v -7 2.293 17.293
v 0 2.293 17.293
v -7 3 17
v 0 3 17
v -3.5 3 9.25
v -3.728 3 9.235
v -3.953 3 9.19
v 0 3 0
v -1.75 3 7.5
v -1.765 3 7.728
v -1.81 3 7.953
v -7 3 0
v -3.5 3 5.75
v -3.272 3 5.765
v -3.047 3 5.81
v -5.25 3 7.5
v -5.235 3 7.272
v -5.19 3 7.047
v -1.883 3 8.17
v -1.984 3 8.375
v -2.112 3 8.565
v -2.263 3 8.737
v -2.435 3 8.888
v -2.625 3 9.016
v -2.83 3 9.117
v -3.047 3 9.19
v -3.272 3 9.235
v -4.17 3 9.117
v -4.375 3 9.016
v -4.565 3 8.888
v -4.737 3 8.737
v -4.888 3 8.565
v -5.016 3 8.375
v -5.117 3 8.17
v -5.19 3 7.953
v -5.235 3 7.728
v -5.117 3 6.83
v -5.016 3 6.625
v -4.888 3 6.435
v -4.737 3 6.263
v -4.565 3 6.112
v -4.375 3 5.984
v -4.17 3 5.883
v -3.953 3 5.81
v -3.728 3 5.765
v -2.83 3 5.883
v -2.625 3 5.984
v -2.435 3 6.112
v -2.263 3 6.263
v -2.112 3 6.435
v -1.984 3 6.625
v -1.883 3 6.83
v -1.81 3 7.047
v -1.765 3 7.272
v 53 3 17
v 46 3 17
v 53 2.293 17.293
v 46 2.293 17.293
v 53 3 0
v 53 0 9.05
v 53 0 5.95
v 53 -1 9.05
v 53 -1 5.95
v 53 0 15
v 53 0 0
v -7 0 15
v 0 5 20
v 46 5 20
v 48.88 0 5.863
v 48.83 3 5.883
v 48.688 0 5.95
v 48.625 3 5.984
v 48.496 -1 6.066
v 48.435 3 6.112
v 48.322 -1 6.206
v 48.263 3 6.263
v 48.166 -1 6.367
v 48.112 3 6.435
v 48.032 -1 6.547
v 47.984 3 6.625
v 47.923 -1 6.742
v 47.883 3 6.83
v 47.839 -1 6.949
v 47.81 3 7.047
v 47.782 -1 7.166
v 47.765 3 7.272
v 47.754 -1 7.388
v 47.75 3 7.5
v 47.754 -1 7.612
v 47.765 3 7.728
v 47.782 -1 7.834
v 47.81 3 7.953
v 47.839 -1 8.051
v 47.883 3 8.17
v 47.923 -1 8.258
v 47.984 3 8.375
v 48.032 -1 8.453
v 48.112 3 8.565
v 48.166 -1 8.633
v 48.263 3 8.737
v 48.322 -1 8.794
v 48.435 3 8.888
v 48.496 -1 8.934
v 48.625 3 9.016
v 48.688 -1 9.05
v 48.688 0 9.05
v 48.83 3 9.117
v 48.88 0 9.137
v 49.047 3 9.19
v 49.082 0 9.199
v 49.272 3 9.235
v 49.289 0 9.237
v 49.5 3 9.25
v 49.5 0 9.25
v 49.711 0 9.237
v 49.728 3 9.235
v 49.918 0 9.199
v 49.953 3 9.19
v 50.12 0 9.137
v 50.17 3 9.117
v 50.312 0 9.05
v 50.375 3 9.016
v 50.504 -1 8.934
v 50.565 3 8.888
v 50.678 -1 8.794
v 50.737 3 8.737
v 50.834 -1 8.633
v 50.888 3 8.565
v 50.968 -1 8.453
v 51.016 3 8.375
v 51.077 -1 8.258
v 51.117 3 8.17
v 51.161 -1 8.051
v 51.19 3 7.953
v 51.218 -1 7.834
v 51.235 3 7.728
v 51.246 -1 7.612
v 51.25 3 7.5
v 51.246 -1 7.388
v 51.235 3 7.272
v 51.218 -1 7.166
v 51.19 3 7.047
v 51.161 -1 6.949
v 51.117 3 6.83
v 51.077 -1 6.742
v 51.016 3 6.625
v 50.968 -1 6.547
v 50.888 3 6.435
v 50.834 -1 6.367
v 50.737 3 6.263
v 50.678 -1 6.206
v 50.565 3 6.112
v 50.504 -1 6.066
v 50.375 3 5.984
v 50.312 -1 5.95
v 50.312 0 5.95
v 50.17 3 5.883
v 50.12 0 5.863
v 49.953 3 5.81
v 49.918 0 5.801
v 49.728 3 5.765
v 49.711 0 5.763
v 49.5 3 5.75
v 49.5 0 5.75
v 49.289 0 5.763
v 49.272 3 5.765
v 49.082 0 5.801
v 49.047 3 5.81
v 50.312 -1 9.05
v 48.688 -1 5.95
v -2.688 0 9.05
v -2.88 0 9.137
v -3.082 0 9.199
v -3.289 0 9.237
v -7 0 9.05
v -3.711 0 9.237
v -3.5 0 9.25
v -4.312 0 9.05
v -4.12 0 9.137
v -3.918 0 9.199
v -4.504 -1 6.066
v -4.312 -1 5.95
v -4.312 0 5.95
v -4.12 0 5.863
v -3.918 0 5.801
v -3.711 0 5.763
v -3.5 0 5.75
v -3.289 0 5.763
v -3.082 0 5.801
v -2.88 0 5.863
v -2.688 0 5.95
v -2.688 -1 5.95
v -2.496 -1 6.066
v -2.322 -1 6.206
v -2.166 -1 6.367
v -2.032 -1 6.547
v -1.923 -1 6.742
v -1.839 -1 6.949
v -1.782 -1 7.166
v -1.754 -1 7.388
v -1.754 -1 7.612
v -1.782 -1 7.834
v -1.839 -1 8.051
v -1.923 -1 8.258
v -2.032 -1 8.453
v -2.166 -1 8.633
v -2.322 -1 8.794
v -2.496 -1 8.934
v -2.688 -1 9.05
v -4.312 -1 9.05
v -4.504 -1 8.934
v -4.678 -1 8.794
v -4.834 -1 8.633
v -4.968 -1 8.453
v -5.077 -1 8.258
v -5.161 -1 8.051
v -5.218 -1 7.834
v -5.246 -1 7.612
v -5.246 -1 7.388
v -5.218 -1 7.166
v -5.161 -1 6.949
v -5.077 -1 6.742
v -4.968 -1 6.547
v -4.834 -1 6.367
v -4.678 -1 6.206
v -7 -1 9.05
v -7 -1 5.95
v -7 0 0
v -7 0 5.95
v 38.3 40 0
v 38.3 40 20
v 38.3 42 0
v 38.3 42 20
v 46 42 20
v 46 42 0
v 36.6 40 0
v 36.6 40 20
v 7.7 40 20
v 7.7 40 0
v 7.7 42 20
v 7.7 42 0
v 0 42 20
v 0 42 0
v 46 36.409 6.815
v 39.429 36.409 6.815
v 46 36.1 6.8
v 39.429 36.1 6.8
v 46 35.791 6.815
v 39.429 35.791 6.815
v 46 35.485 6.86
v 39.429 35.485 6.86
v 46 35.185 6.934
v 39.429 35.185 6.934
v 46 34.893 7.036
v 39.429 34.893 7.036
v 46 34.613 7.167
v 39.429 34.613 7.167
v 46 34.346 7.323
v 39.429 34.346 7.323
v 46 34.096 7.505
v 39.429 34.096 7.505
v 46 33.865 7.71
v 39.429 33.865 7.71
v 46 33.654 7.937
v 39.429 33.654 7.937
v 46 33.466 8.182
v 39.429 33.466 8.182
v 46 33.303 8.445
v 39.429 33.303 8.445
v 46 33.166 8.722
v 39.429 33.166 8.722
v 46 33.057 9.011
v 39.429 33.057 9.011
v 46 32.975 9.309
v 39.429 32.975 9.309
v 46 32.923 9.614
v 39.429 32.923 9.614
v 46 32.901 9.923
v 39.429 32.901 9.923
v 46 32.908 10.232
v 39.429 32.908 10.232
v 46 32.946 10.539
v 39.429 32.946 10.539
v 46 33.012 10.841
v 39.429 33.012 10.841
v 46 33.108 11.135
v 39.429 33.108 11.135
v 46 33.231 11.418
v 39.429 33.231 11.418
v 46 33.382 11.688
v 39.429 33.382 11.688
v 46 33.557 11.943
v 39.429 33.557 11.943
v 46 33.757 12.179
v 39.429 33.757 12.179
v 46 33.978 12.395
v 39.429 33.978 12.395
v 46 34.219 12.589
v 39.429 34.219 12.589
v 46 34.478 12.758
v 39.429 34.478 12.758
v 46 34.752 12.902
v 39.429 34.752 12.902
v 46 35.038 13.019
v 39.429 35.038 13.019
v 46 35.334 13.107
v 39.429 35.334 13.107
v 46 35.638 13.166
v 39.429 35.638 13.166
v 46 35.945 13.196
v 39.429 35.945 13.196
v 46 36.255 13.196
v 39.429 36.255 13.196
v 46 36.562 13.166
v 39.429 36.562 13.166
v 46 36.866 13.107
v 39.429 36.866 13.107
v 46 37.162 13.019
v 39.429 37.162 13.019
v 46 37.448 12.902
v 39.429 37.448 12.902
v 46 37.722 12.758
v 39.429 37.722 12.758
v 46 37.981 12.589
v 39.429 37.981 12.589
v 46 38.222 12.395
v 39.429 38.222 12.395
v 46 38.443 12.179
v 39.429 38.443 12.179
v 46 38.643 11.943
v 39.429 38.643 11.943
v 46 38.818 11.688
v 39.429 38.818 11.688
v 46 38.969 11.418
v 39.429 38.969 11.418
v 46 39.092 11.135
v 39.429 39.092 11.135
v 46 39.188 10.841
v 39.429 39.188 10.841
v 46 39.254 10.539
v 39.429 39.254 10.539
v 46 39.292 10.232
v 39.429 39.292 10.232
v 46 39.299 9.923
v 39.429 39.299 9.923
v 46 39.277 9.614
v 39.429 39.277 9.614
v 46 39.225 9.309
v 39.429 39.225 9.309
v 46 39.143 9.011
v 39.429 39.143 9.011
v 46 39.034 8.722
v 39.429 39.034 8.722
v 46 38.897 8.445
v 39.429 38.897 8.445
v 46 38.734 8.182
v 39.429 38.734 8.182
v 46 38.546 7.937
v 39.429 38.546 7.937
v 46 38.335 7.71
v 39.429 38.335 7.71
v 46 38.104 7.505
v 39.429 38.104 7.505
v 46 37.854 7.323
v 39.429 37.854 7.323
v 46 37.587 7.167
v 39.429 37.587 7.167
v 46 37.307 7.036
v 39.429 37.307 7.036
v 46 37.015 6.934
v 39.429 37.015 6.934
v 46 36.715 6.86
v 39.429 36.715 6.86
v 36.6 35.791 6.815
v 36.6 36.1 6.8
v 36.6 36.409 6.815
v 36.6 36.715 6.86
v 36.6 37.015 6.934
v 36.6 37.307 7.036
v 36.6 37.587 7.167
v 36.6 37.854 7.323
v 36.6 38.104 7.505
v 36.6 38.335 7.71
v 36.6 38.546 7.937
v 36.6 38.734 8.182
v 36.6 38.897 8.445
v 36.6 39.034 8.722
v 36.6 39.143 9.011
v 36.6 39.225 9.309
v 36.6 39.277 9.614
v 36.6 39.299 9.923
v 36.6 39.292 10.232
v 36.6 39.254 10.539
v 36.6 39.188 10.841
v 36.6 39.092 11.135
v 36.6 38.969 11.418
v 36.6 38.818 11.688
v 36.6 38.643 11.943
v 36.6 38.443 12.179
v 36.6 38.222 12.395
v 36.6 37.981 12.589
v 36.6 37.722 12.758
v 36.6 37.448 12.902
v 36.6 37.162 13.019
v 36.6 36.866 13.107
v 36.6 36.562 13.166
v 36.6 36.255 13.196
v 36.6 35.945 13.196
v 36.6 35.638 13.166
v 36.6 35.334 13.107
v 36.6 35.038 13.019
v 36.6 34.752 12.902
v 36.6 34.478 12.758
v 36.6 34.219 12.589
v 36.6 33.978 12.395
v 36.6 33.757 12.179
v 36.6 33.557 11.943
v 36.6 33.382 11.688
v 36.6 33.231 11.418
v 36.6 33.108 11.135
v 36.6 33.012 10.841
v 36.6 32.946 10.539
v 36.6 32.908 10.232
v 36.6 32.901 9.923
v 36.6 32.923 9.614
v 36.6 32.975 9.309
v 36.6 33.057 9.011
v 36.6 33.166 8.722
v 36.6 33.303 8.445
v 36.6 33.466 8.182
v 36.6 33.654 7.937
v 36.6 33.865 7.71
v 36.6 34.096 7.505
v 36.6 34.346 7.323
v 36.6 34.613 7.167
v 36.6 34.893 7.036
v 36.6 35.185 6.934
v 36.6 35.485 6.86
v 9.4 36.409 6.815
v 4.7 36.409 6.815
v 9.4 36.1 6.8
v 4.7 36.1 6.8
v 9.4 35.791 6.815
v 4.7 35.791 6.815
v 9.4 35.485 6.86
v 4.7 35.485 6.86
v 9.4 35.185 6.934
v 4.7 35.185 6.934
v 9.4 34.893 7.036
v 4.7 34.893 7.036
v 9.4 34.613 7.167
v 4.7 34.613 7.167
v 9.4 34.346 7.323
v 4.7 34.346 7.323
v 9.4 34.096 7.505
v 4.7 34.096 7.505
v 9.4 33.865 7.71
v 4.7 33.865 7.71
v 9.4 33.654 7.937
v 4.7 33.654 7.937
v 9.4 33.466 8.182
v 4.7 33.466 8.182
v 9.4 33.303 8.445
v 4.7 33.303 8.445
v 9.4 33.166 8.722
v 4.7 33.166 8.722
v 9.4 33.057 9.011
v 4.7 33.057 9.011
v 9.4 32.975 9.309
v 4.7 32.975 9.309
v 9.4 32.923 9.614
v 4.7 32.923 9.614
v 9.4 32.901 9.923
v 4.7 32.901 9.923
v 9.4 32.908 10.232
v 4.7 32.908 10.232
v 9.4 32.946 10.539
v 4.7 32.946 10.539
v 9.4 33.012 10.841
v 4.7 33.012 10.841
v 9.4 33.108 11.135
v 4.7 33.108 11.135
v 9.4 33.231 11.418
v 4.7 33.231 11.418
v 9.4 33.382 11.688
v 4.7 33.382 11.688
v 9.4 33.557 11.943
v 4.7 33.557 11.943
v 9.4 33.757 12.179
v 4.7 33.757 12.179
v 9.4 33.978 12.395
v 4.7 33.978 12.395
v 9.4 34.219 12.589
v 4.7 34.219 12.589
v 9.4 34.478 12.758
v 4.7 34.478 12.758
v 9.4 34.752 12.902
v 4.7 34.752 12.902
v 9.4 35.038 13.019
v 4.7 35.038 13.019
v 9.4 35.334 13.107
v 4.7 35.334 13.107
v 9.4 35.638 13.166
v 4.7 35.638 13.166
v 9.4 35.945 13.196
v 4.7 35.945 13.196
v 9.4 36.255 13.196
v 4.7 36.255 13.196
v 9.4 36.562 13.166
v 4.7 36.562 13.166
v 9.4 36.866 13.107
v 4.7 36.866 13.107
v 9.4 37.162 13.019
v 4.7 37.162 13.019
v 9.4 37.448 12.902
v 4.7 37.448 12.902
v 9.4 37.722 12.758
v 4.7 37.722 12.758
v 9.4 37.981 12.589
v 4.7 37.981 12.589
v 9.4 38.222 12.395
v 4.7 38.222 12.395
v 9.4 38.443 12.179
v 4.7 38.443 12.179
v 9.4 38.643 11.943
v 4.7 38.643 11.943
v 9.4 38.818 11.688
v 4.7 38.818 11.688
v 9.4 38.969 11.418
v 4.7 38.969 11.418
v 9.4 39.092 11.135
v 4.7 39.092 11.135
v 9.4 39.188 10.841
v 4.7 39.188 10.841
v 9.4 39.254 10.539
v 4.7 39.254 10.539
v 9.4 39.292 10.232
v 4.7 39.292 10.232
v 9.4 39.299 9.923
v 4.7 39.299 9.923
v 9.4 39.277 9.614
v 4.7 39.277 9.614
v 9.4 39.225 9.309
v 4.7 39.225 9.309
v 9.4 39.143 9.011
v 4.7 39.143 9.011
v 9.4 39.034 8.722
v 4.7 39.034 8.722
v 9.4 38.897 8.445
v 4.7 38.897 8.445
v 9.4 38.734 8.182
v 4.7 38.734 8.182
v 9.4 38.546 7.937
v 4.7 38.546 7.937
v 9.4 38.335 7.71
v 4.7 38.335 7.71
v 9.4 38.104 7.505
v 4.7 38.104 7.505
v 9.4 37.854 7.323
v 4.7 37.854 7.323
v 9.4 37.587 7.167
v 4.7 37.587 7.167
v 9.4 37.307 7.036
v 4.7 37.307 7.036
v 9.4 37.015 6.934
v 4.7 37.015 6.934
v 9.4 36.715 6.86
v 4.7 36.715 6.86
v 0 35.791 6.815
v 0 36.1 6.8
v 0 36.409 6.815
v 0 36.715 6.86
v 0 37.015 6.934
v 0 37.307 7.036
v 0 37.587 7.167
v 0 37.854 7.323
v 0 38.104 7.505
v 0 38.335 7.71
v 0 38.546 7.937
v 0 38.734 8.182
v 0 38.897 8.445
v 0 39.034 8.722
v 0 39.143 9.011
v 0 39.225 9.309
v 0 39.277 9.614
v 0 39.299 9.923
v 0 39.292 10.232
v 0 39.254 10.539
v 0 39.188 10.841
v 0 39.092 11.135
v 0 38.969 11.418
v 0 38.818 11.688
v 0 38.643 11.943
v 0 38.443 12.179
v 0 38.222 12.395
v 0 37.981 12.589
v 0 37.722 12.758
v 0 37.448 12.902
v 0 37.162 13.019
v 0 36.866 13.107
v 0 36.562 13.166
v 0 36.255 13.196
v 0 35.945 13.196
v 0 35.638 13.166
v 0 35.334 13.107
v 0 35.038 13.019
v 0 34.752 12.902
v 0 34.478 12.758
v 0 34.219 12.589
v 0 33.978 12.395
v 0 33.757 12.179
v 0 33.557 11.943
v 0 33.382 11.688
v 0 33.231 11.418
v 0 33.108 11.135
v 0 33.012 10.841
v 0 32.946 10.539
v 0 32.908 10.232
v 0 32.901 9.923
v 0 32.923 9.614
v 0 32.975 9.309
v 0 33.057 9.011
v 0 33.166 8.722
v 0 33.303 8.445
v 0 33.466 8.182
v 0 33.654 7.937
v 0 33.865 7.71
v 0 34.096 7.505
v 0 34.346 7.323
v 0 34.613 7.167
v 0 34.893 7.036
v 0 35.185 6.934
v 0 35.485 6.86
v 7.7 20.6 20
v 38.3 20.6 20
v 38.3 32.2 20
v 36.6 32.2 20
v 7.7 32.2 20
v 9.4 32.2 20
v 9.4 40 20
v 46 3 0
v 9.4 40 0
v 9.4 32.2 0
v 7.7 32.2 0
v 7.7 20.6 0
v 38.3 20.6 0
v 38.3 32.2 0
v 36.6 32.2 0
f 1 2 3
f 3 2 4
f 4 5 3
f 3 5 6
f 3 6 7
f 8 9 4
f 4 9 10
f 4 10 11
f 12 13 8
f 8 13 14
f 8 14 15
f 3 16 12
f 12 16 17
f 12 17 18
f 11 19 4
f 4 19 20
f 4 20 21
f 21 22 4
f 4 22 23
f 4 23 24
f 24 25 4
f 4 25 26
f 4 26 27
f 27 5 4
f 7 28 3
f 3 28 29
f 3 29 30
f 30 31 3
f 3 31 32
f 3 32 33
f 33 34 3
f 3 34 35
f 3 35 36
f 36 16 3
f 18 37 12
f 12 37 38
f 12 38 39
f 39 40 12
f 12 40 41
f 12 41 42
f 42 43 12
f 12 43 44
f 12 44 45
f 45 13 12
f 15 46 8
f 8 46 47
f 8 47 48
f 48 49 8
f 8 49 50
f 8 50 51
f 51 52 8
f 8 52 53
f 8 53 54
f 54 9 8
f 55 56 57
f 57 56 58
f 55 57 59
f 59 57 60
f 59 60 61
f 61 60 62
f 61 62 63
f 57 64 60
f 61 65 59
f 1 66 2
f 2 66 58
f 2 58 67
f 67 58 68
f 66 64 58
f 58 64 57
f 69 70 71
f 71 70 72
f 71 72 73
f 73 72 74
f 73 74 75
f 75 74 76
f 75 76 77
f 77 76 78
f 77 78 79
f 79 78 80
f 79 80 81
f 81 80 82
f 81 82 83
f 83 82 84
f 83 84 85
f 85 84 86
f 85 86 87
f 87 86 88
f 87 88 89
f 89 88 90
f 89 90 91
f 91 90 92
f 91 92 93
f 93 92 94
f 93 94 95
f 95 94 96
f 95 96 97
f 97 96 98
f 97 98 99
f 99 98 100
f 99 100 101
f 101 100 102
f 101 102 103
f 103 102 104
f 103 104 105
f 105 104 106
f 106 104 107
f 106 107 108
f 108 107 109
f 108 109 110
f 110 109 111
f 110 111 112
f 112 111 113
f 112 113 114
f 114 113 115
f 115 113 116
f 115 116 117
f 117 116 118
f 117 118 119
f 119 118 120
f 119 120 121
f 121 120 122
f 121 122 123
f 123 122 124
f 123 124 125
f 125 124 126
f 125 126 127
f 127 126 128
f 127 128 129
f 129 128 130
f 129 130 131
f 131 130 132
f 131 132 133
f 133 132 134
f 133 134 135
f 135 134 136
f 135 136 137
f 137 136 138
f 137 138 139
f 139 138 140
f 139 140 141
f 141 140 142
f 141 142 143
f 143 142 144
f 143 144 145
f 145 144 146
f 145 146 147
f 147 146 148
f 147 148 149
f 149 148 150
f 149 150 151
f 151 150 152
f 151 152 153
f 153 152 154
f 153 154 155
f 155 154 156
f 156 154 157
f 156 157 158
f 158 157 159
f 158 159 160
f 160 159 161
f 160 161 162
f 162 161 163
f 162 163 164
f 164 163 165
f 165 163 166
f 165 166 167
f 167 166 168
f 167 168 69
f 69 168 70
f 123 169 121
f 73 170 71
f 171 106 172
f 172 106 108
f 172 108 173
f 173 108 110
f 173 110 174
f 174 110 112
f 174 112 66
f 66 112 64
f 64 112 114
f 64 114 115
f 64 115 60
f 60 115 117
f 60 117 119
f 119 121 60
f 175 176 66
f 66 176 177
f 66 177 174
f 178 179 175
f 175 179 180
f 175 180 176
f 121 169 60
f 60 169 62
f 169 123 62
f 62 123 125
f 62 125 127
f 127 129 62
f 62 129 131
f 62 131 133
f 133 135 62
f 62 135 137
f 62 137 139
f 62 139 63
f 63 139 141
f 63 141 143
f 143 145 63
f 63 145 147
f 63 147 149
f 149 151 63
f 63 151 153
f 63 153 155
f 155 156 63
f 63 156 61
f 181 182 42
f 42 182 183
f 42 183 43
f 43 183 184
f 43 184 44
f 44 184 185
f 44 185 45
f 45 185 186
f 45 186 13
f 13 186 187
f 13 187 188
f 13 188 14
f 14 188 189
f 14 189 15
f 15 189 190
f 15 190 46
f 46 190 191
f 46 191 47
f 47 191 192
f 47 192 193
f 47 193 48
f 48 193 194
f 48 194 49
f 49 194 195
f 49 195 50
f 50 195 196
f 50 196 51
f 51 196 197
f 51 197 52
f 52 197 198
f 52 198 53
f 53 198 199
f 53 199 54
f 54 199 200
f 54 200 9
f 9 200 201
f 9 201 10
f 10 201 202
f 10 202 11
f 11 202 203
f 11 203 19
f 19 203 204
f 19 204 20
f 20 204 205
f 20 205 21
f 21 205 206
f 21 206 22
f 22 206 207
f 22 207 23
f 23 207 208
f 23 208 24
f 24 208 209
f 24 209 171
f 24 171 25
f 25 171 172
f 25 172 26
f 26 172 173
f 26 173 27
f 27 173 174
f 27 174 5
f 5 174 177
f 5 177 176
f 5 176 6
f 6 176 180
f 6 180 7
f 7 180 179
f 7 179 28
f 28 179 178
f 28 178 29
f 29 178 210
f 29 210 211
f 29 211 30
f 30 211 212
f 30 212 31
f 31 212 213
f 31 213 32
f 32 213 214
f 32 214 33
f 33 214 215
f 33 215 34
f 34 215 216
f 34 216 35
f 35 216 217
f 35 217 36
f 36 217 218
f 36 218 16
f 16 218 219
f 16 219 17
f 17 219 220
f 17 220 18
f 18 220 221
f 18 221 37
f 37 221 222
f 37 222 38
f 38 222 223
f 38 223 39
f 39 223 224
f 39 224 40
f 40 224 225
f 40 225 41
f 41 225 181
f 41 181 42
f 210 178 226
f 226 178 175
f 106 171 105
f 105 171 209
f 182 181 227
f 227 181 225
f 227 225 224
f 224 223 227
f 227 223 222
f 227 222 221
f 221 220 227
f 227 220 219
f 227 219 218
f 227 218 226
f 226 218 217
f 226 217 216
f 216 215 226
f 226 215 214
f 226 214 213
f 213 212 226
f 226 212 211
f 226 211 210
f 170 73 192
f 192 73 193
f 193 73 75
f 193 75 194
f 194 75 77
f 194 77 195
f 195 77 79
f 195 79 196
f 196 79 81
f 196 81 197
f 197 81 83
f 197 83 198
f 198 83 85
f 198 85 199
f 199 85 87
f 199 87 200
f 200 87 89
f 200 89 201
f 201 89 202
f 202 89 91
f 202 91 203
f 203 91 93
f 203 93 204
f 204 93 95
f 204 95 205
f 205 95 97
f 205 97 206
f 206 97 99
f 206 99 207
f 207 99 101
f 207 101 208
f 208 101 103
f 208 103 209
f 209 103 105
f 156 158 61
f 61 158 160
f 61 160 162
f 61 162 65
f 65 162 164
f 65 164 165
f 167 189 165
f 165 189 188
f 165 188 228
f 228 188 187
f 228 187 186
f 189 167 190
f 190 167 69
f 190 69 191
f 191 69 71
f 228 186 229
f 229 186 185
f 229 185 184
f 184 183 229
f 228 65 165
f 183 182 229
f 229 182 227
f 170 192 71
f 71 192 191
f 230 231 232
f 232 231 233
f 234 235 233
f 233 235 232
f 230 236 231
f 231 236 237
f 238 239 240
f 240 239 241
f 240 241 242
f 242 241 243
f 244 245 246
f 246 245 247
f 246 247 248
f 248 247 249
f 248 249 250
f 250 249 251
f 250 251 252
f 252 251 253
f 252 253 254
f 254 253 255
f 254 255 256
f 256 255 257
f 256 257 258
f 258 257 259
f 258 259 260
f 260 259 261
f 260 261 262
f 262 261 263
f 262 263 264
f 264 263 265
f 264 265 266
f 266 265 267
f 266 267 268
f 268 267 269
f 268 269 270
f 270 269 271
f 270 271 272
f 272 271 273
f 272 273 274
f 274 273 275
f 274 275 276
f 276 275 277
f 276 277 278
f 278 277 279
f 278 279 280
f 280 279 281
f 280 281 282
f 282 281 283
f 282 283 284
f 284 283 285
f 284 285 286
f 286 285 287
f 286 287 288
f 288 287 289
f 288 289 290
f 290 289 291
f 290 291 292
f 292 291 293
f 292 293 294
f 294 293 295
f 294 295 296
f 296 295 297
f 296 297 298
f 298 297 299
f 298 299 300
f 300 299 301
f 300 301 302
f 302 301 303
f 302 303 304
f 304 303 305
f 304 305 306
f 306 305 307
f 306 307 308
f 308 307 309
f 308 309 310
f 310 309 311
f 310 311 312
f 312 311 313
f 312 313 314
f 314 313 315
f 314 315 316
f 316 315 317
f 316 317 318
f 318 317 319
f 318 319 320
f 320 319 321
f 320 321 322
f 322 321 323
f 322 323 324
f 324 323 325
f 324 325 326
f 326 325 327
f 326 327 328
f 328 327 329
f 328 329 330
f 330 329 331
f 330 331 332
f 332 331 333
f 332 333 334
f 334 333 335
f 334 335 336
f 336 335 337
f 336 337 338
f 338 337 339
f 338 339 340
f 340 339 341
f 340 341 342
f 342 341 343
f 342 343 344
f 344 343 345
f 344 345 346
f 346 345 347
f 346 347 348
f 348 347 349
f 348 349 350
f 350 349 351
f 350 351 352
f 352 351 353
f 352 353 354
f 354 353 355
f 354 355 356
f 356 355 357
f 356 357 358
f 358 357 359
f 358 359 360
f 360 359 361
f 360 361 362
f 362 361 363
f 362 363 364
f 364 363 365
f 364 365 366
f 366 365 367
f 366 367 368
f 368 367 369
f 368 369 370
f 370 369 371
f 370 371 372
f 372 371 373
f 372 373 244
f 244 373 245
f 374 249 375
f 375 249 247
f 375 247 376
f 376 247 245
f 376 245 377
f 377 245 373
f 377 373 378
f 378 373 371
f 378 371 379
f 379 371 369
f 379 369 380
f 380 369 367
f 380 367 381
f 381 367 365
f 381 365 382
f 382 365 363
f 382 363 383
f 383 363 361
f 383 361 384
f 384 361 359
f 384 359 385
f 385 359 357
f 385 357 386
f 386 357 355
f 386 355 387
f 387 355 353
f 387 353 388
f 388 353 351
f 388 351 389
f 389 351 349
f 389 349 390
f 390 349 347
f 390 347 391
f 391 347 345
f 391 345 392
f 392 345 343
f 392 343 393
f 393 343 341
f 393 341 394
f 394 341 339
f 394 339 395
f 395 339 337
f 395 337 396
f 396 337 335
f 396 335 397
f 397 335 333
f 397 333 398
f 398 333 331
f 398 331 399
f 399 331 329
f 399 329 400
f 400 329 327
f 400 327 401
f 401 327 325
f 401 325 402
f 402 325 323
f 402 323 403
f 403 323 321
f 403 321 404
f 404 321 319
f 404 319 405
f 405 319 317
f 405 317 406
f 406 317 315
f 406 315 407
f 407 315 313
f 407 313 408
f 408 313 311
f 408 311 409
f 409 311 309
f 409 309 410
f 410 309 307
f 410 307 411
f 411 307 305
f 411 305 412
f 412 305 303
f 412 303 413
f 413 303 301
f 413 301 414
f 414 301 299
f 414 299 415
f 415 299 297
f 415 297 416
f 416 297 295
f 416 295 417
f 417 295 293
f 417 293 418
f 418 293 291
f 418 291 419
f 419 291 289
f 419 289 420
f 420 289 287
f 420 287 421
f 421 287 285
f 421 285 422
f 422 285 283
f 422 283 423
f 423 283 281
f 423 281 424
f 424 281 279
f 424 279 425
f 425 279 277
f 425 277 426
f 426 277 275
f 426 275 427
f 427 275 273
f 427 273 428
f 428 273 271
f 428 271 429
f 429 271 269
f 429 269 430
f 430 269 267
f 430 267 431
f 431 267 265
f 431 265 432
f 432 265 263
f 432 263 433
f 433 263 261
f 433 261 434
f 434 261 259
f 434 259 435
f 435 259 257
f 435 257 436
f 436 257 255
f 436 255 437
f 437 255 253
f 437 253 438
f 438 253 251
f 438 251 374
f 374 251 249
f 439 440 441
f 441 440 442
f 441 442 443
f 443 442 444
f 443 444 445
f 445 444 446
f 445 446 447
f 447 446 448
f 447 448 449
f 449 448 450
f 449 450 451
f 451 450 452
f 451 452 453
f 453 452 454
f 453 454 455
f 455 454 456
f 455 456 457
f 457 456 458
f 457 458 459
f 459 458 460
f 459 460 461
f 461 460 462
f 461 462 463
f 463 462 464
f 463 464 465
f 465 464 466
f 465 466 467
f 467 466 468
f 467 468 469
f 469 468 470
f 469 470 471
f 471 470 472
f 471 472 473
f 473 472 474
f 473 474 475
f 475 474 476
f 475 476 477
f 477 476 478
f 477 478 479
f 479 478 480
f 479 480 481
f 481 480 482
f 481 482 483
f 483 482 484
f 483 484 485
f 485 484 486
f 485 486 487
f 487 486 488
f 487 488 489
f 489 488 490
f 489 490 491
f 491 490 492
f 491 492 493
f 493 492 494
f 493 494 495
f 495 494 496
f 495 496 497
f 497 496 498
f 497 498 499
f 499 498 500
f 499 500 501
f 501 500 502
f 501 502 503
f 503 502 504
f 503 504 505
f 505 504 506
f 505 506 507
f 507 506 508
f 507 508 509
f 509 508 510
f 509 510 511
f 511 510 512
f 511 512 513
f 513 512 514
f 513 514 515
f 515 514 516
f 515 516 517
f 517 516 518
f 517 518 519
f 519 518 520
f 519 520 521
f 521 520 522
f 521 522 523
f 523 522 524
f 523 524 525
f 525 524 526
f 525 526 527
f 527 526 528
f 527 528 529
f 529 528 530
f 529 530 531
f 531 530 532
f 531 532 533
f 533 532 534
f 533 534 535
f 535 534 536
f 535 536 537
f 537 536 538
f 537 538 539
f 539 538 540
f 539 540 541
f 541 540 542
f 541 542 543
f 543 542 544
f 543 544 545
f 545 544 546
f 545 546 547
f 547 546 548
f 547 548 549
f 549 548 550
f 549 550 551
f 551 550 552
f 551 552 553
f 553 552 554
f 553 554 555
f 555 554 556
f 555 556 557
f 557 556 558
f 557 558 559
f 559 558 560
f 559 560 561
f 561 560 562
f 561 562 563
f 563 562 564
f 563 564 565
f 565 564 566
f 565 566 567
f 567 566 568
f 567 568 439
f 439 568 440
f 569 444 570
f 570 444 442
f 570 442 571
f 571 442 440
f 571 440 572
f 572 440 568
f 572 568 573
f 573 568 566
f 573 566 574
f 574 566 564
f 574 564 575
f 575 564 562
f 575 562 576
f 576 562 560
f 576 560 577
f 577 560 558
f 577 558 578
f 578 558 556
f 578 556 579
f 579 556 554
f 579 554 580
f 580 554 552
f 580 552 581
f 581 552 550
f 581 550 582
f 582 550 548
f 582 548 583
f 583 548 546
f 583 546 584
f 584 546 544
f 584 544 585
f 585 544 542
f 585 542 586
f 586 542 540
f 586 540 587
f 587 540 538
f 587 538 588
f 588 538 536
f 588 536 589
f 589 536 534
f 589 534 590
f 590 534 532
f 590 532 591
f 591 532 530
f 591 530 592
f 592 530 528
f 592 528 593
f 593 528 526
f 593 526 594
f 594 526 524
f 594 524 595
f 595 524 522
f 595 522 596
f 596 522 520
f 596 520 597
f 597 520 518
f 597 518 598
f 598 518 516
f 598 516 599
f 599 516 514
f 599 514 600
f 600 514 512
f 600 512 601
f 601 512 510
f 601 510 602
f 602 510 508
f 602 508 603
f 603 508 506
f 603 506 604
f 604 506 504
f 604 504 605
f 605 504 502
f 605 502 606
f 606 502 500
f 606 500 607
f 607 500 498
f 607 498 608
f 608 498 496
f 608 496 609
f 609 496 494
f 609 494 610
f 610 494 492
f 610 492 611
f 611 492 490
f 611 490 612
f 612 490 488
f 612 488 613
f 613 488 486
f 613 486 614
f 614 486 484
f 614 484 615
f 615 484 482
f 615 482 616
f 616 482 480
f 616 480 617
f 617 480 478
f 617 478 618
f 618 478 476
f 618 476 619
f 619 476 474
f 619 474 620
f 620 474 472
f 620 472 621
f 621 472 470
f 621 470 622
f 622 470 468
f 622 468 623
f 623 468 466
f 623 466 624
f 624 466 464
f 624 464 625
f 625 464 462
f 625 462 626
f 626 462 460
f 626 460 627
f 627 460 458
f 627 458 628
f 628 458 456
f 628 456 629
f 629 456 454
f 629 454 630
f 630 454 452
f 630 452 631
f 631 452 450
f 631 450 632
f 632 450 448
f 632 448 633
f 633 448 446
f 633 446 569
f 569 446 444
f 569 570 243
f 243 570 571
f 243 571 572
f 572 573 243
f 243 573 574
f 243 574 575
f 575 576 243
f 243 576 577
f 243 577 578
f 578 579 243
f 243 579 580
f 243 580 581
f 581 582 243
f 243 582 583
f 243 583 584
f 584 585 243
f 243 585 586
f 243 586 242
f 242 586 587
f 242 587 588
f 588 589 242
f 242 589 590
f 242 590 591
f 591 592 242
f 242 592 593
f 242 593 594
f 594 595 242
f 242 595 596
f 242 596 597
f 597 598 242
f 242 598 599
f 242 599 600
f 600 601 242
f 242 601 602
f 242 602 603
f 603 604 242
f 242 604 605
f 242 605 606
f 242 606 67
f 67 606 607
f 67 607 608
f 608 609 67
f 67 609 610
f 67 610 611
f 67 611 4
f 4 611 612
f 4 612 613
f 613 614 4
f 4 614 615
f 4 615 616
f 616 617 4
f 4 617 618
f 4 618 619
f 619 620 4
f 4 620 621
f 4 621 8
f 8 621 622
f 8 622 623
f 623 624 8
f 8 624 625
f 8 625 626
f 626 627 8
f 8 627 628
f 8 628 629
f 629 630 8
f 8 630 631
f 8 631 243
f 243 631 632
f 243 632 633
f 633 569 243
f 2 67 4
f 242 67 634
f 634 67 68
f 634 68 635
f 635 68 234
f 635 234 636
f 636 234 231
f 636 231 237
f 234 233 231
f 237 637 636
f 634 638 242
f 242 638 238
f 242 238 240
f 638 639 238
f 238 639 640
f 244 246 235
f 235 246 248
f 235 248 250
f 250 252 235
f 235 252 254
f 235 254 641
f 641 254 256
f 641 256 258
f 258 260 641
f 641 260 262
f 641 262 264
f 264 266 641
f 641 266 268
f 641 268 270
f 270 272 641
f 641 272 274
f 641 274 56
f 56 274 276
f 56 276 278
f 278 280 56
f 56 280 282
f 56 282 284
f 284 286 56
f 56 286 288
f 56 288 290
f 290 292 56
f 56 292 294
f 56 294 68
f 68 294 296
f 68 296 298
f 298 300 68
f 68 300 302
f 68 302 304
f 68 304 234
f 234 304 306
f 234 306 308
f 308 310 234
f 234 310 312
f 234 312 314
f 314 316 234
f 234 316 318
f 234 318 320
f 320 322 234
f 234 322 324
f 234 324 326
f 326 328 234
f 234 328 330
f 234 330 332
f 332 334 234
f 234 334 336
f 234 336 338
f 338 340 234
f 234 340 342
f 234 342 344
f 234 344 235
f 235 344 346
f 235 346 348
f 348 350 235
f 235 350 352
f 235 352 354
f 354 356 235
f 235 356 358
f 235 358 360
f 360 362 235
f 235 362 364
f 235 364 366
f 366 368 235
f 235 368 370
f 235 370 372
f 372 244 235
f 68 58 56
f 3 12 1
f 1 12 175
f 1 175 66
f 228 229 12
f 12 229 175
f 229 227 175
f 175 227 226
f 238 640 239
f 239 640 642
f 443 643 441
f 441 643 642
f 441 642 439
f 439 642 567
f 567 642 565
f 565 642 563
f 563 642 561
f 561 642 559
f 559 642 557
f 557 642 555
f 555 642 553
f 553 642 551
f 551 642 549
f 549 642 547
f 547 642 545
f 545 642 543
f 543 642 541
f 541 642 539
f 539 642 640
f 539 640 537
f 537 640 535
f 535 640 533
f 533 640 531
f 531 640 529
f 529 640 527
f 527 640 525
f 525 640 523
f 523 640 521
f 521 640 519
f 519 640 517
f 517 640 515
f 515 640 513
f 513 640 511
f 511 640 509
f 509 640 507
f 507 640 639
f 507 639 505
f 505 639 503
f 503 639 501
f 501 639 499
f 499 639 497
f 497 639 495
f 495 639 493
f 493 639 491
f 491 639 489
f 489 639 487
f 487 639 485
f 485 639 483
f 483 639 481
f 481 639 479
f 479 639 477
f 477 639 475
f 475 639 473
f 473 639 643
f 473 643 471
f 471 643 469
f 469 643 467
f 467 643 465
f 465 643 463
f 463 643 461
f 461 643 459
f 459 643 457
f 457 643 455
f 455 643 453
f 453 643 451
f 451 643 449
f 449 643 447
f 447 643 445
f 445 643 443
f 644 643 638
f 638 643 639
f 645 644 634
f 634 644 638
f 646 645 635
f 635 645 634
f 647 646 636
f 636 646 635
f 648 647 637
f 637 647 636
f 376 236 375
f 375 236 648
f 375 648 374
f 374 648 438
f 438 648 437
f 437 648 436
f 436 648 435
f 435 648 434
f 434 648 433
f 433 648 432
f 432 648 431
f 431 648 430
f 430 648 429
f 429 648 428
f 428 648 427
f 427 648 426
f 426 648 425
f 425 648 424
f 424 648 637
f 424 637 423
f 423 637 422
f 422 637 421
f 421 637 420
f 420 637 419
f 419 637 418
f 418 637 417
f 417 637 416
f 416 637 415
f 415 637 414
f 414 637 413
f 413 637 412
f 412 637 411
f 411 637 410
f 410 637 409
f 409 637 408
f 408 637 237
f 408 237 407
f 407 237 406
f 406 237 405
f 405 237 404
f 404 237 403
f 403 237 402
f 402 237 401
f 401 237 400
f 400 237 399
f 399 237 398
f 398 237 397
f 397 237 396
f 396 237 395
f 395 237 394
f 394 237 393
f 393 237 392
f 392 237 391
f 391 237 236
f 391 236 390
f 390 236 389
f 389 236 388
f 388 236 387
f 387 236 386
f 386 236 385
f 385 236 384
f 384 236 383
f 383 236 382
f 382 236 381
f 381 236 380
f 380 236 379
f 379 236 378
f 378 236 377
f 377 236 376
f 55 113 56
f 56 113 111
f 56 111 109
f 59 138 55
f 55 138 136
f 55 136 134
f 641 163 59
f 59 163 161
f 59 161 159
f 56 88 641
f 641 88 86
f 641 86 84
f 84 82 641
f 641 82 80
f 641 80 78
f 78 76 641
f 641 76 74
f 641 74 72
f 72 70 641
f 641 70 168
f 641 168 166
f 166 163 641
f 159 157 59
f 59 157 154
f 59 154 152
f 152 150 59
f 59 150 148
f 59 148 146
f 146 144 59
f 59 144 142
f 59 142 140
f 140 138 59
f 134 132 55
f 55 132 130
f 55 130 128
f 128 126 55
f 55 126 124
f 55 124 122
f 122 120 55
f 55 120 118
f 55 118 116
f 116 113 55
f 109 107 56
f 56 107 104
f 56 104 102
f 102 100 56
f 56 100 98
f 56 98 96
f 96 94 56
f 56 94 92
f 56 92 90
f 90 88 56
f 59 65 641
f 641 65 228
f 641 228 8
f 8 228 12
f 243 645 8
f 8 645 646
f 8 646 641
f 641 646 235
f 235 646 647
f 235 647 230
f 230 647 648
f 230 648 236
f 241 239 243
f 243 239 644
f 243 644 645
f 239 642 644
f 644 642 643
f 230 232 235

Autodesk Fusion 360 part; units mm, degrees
sketch "Sketch1" plane through (0, 0, 0) normal (0, 0, 1) x (1, 0, 0)
  line L0 (0, 0) -> (46, 0)
  line L1 (46, 0) -> (46, 20.6)
  line L2 (46, 20.6) -> (0, 20.6)
  line L3 (0, 20.6) -> (0, 0)
  line L4 (0, 20.6) -> (7.7, 20.6)
  line L5 (7.7, 20.6) -> (7.7, 40)
  line L6 (7.7, 40) -> (0, 40)
  line L7 (0, 40) -> (0, 20.6)
  line L8 (7.7, 40) -> (9.4, 40)
  line L9 (9.4, 40) -> (9.4, 32.2)
  line L10 (9.4, 32.2) -> (7.7, 32.2)
  line L11 (7.7, 32.2) -> (7.7, 40)
  line L12 (23, 20.6) -> (23, 0) construction
  line L13 (46, 20.6) -> (38.3, 20.6)
  line L14 (38.3, 20.6) -> (38.3, 40)
  line L15 (46, 40) -> (46, 20.6)
  line L16 (38.3, 40) -> (46, 40)
  line L17 (38.3, 40) -> (36.6, 40)
  line L18 (36.6, 32.2) -> (38.3, 32.2)
  line L19 (38.3, 32.2) -> (38.3, 40)
  line L20 (36.6, 40) -> (36.6, 32.2)
  line L21 (0, 0) -> (-7, 0)
  line L22 (-7, 0) -> (-7, 3)
  line L23 (-7, 3) -> (0, 3)
  line L24 (0, 3) -> (0, 0)
  line L25 (46, 0) -> (53, 0)
  line L26 (53, 0) -> (53, 3)
  line L27 (53, 3) -> (46, 3)
  line L28 (46, 3) -> (46, 0)
  dimension "d1" = 20.6
  dimension "d2" = 46
  dimension "d3" = 7.7
  dimension "d6" = 40
  dimension "d7" = 7.8
  dimension "d8" = 1.7
  dimension "d9" = 7
  dimension "d10" = 3
  dimension "d11" = 3
  dimension "d12" = 7
extrude "Extrude1" add sketch "Sketch1" along normal blind 20
chamfer "Chamfer1" distance 5 angle 45 1 edges at (23, 0, 20)
sketch "Sketch2" plane through (-7, 0, 0) normal (-1, 0, 0) x (0, 0, 1)
  line L0 (15, 0) -> (18, 3)
  line L1 (18, 3) -> (0, 3)
  line L2 (0, 3) -> (0, 0)
  line L3 (0, 0) -> (15, 0)
  line L4 (5.95, 0) -> (9.05, 0)
  line L5 (9.05, 0) -> (9.05, -1)
  line L6 (9.05, -1) -> (5.95, -1)
  line L7 (5.95, -1) -> (5.95, 0)
  point P0 (7.5, 0)
  dimension "d16" = 1
  dimension "d17" = 3.1
extrude "Extrude2" add sketch "Sketch2" against normal up to surface (60 mm away) contours L3 L4 L5 L6 L7
sketch "Sketch3" plane through (0, 0, 0) normal (-1, 0, 0) x (0, 0, 1)
  line L0 (18, 3) -> (20, 5)
  line L1 (20, 5) -> (20, 40)
  line L2 (20, 40) -> (0, 40)
  line L3 (0, 40) -> (0, 3)
  line L4 (0, 3) -> (18, 3)
  circle A0 centre (10, 36.1) radius 3.2
  line L5 (0, 40) -> (0, 32.2)
  point P0 (10, 40)
  point P1 (0, 36.1)
  dimension "d20" = 6.4
extrude "Extrude3" cut sketch "Sketch3" against normal through all contours A0
sketch "Sketch4" plane through (0, 40, 0) normal (0, 1, 0) x (-1, 0, 0)
  line L0 (-9.4, 0) -> (0, 0)
  line L1 (0, 0) -> (0, 20)
  line L2 (0, 20) -> (-9.4, 20)
  line L3 (-9.4, 20) -> (-9.4, 0)
  line L4 (0, 0) -> (-7.7, 0)
  line L5 (-7.7, 0) -> (-7.7, 20)
  line L6 (-7.7, 20) -> (0, 20)
  line L7 (0, 20) -> (0, 0)
  point P0 (-7.7, 0)
extrude "Extrude4" add sketch "Sketch4" along normal blind 2 contours L0 L1 L2 L4 L5 L6 L7
ref_plane "WorkPlane1" through (23, 22.5, 10) normal (-1, 0, 0) x (0, -1, 0)
mirror "Mirror1" about plane through (23, 22.5, 10) normal (-1, 0, 0) of "Extrude4"
sketch "Sketch5" plane through (0, 3, 0) normal (0, 1, 0) x (-1, 0, 0)
  line L0 (7, 18) -> (0, 18)
  line L1 (0, 18) -> (0, 0)
  line L2 (0, 0) -> (7, 0)
  line L3 (7, 0) -> (7, 18)
  line L4 (7, 9.05) -> (7, 5.95)
  circle A0 centre (3.5, 7.5) radius 1.75
  point P0 (7, 7.5)
  dimension "d25" = 3.5
  dimension "d26" = 3.5
extrude "Extrude5" cut sketch "Sketch5" against normal blind 5 contours A0
mirror "Mirror2" about plane through (23, 22.5, 10) normal (-1, 0, 0) of "Extrude5"
chamfer "Chamfer2" distance 1 angle 45 2 edges at (49.5, 3, 18) (-3.5, 3, 18)
equation "d11 = d10"
equation "d12 = d9"
